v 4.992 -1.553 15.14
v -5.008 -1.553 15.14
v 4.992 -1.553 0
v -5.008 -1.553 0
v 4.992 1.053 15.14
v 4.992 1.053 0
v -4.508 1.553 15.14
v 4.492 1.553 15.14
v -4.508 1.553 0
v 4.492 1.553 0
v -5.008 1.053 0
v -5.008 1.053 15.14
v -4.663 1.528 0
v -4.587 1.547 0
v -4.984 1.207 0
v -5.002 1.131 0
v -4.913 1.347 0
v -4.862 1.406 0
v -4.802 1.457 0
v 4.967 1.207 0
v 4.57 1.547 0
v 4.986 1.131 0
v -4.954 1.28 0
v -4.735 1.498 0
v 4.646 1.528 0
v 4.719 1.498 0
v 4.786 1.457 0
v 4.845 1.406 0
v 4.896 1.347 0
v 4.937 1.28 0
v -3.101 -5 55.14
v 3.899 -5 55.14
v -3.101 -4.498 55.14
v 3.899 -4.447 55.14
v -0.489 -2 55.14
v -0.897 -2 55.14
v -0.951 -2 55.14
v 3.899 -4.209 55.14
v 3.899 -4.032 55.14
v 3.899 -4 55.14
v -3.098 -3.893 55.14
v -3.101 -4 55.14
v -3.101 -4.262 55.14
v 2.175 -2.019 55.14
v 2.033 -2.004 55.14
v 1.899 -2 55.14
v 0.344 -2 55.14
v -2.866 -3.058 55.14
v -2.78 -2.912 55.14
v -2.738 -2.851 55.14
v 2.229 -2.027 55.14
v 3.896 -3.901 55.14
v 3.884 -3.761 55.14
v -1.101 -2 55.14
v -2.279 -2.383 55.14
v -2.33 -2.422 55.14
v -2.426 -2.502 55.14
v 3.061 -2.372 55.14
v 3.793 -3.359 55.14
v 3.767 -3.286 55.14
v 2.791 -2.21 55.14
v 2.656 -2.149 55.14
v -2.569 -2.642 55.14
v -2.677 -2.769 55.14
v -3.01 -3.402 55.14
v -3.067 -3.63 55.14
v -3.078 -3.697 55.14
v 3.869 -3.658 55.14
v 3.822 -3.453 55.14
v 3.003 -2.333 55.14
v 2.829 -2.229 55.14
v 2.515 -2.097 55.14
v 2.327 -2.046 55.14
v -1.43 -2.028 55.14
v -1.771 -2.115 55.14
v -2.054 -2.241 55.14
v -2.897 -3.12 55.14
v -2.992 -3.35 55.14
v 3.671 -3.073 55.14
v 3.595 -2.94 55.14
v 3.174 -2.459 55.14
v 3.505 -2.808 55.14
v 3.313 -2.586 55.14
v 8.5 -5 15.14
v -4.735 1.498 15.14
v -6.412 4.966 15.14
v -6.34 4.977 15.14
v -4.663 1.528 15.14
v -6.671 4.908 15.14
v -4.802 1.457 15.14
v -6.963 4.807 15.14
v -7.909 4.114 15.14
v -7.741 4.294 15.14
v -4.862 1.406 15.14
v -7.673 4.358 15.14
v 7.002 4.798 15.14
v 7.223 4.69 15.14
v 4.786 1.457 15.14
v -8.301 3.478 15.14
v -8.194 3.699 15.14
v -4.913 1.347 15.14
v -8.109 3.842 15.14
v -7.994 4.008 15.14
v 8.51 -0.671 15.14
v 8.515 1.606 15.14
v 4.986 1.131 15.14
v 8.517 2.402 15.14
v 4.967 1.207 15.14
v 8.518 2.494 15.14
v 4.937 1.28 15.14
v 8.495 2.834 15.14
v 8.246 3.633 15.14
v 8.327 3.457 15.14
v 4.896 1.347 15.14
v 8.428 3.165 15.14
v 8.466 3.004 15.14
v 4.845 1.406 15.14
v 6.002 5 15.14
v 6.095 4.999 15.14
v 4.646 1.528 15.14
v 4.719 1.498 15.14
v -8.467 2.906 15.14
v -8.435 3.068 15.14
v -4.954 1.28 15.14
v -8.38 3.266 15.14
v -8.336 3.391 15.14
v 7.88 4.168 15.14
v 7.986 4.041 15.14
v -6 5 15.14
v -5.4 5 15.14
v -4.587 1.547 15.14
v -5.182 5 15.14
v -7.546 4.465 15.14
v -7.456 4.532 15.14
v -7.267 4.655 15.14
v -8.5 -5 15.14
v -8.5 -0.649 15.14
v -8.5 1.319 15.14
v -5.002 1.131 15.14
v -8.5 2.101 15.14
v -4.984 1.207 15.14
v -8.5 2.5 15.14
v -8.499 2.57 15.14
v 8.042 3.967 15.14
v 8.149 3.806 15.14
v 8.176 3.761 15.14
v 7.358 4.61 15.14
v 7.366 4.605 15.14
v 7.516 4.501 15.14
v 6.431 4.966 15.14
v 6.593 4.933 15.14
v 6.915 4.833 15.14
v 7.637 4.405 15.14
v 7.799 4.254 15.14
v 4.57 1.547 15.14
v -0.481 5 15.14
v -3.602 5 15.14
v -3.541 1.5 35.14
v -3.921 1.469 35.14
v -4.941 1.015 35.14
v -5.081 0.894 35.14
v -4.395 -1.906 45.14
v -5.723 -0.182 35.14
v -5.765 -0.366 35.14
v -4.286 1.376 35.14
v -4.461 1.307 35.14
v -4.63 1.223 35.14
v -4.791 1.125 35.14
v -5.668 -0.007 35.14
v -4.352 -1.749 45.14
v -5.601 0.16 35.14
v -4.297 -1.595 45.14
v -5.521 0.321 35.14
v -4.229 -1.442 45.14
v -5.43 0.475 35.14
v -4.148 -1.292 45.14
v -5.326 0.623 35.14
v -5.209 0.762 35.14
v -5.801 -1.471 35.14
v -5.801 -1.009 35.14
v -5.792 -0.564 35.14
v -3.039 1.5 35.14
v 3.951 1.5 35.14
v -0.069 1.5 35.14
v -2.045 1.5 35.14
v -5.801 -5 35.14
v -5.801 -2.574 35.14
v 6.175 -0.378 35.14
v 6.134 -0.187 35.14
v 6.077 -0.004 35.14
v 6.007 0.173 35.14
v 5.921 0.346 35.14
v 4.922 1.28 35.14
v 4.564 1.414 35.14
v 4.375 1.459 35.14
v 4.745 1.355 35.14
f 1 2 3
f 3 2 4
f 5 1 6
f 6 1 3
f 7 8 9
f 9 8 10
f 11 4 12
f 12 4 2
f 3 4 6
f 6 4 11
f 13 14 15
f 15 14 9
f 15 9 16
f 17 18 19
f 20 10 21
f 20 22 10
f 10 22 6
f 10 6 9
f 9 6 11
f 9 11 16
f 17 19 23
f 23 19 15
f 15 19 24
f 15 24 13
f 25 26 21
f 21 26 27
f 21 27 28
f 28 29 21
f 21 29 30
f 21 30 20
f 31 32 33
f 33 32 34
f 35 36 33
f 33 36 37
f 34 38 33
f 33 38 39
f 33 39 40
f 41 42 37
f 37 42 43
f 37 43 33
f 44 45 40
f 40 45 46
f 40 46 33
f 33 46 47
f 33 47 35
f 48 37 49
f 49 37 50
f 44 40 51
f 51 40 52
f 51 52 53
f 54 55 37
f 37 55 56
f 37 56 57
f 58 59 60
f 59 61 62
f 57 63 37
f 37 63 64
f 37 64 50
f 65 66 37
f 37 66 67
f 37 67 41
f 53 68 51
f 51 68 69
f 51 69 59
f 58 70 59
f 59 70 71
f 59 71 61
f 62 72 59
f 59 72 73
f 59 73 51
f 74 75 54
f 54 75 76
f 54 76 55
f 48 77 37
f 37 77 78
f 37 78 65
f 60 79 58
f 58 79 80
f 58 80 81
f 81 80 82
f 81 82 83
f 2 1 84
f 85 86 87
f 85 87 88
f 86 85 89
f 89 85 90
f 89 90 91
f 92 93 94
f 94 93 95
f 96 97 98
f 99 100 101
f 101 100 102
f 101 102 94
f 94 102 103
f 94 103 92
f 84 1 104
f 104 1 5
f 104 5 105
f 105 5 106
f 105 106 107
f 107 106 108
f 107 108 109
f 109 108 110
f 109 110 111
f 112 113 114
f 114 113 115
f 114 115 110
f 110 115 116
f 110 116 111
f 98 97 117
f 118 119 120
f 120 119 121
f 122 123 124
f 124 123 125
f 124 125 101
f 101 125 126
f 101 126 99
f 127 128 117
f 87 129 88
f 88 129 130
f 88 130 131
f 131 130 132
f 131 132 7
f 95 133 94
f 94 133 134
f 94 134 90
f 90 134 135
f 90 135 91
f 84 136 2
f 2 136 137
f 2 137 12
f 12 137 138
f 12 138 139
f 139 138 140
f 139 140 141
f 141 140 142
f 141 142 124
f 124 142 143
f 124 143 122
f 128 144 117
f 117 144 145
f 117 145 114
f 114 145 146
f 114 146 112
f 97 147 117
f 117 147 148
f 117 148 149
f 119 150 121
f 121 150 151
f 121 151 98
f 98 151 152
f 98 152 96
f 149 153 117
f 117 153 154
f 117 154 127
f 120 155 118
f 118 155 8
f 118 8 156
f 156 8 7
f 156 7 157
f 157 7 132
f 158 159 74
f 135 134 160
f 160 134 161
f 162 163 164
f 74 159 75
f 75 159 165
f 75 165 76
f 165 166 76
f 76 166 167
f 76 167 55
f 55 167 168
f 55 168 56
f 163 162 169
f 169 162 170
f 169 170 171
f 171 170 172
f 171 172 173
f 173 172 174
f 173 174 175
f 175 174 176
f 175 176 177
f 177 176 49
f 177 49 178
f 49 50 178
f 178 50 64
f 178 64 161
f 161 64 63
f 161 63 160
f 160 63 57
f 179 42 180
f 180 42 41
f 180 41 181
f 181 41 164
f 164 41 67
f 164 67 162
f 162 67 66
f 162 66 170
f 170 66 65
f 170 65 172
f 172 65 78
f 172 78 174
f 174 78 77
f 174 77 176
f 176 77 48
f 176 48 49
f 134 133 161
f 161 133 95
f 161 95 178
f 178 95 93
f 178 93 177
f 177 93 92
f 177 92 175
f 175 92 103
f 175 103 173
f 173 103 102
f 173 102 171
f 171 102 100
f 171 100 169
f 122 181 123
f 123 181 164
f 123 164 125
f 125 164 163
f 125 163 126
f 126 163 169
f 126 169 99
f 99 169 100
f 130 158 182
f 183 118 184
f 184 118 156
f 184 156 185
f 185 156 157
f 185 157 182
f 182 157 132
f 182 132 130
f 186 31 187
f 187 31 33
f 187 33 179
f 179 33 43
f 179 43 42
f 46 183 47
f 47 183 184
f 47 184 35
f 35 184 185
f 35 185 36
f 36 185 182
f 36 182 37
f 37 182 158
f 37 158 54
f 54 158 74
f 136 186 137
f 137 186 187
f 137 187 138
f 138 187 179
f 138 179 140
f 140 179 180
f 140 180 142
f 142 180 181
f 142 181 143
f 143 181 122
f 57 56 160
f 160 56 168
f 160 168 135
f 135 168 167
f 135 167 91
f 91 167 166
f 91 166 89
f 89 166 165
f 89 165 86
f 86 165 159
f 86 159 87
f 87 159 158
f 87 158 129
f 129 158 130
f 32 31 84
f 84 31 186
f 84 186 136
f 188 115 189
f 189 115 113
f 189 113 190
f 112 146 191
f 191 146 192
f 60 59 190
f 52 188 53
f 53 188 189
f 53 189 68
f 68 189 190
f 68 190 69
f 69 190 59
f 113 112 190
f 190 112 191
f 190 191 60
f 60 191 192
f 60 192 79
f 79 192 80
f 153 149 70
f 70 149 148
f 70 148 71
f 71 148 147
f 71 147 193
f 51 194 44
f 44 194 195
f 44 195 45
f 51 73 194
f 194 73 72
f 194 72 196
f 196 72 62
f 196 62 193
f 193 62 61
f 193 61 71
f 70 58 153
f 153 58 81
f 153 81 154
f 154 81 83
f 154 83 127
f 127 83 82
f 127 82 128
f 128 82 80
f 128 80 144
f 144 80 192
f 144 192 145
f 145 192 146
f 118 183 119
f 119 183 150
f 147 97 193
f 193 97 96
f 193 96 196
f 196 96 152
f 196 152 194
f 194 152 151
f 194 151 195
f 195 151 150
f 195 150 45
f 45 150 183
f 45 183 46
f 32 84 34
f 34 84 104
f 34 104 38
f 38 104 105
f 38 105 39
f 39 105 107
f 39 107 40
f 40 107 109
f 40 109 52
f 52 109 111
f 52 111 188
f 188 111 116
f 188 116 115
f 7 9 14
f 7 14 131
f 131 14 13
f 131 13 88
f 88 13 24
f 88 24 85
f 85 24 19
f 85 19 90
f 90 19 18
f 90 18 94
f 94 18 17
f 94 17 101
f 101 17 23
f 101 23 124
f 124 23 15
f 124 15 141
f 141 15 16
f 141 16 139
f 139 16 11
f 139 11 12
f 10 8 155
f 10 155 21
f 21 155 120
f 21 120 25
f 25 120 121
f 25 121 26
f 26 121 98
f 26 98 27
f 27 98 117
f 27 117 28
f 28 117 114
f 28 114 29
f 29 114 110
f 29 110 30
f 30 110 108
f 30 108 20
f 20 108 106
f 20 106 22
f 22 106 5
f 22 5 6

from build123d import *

# Parameters (mm, degrees)
SKETCH1_W           = 10
SKETCH1_H           = 3.105775443
BOSS_EXTRUDE1_DEPTH = 15.14
FILLET1_R           = 0.5


with BuildPart() as part:
    # Sketch1 → Boss-Extrude1 (new body)
    with BuildSketch(Plane.XY):
        with Locations((-0.008293574, -2.2925e-05)):
            Rectangle(SKETCH1_W, SKETCH1_H)
    extrude(amount=BOSS_EXTRUDE1_DEPTH)

    # Loft1: read off the stored shape, not the designer's step
    # Loft1: loft between two sections, ruled curve by curve
    loft1_from = [
        Edge.make_bspline([(6.002368105, 5, 15.14), (4.973125798, 5, 15.14), (3.004819926, 5, 15.14), (0.185859297, 5, 15.14), (-2.58508535, 5, 15.14), (-4.44969412, 5, 15.14), (-5.449891462, 5, 15.14), (-5.57771544, 5, 15.14), (-5.783318565, 5, 15.14), (-5.907849178, 5, 15.14), (-5.972093141, 5, 15.14), (-6.17467612, 5, 15.14), (-6.499597583, 4.964301348, 15.14), (-6.934896014, 4.832707278, 15.14), (-7.32552261, 4.634429877, 15.14), (-7.673911431, 4.373864242, 15.14), (-7.978763997, 4.050324082, 15.14), (-8.234306918, 3.655920908, 15.14), (-8.396723796, 3.254240148, 15.14), (-8.480332717, 2.862623296, 15.14), (-8.5, 2.631885527, 15.14), (-8.5, 2.075292876, 15.14), (-8.5, 1.127457579, 15.14), (-8.5, -0.819864409, 15.14), (-8.5, -3.191164425, 15.14), (-8.5, -4.454054832, 15.14), (-8.5, -5, 15.14)], [0, 0, 0, 0, 0.111510841, 0.223021681, 0.334532522, 0.446043363, 0.446043363, 0.451912354, 0.457781346, 0.463650337, 0.469519329, 0.469519329, 0.506254839, 0.54299035, 0.57972586, 0.61646137, 0.653196881, 0.689932391, 0.726667901, 0.745035656, 0.763403412, 0.763403412, 0.822552559, 0.881701706, 0.940850853, 1, 1, 1, 1], 3),
        Edge.make_bspline([(8.5, -5, 15.14), (8.500991996, -4.575244993, 15.14), (8.503176578, -3.63984652, 15.14), (8.508751194, -1.252896386, 15.14), (8.51432581, 1.134053748, 15.14), (8.516510392, 2.069452221, 15.14), (8.517811111, 2.626396957, 15.14), (8.49908527, 2.846946207, 15.14), (8.443489244, 3.123561182, 15.14), (8.367638554, 3.363722111, 15.14), (8.245865367, 3.65118142, 15.14), (8.059926267, 3.961930691, 15.14), (7.790063704, 4.279208373, 15.14), (7.471784056, 4.547888472, 15.14), (7.160345054, 4.732669981, 15.14), (6.872434615, 4.853372684, 15.14), (6.631993106, 4.928329205, 15.14), (6.355173173, 4.982895557, 15.14), (6.13455577, 5.000800601, 15.14), (6.002368105, 5, 15.14)], [0, 0, 0, 0, 0.111365706, 0.222731413, 0.334097119, 0.445462826, 0.445462826, 0.480121399, 0.514779973, 0.549438546, 0.584097119, 0.653414266, 0.722731413, 0.79204856, 0.861365706, 0.89602428, 0.930682853, 0.965341427, 1, 1, 1, 1], 3),
        Edge.make_line((-8.5, -5, 15.14), (8.5, -5, 15.14)),
    ]
    loft1_to = [
        Edge.make_bspline([(1.898763427, -2, 55.14), (1.68912791, -2, 55.14), (1.247791237, -2, 55.14), (0.527731018, -2, 55.14), (-0.222420428, -2, 55.14), (-0.713736573, -2, 55.14), (-0.963736573, -2, 55.14), (-0.986728567, -2, 55.14), (-1.019071695, -2, 55.14), (-1.054765163, -2, 55.14), (-1.080945918, -2, 55.14), (-1.228240938, -2, 55.14), (-1.496918662, -2.025435314, 55.14), (-1.911785618, -2.15285696, 55.14), (-2.306346344, -2.382510015, 55.14), (-2.62960532, -2.68644458, 55.14), (-2.864851797, -3.028969372, 55.14), (-3.011847525, -3.375243405, 55.14), (-3.075118823, -3.64816943, 55.14), (-3.0978707, -3.853987875, 55.14), (-3.101236573, -3.952199478, 55.14), (-3.101236573, -4.153930631, 55.14), (-3.101236573, -4.297062563, 55.14), (-3.101236573, -4.527630405, 55.14), (-3.101236573, -4.731947482, 55.14), (-3.101236573, -4.888802183, 55.14), (-3.101236573, -5, 55.14)], [0, 0, 0, 0, 0.111510841, 0.223021681, 0.334532522, 0.446043363, 0.446043363, 0.451912354, 0.457781346, 0.463650337, 0.469519329, 0.469519329, 0.506254839, 0.54299035, 0.57972586, 0.61646137, 0.653196881, 0.689932391, 0.726667901, 0.745035656, 0.763403412, 0.763403412, 0.822552559, 0.881701706, 0.940850853, 1, 1, 1, 1], 3),
        Edge.make_bspline([(3.898763427, -5, 55.14), (3.898763427, -4.846256203, 55.14), (3.898763427, -4.714582876, 55.14), (3.898763427, -4.5, 55.14), (3.898763427, -4.285417124, 55.14), (3.898763427, -4.153743797, 55.14), (3.898763427, -3.952152769, 55.14), (3.895391319, -3.852913488, 55.14), (3.877383526, -3.693016744, 55.14), (3.843592793, -3.521678819, 55.14), (3.772300297, -3.279550251, 55.14), (3.62424883, -2.954199991, 55.14), (3.327418957, -2.571379789, 55.14), (2.944616956, -2.274539085, 55.14), (2.619245408, -2.126493121, 55.14), (2.377114625, -2.05518085, 55.14), (2.20577222, -2.021376458, 55.14), (2.045857954, -2.003369443, 55.14), (1.946610658, -2, 55.14), (1.898763427, -2, 55.14)], [0, 0, 0, 0, 0.111365706, 0.222731413, 0.334097119, 0.445462826, 0.445462826, 0.480121399, 0.514779973, 0.549438546, 0.584097119, 0.653414266, 0.722731413, 0.79204856, 0.861365706, 0.89602428, 0.930682853, 0.965341427, 1, 1, 1, 1], 3),
        Edge.make_line((-3.101236573, -5, 55.14), (3.898763427, -5, 55.14)),
    ]
    loft1 = Solid(Shell([*[Face.make_surface_from_curves(loft1_from[k], loft1_to[k]) for k in range(3)], Face(Wire(loft1_from)), Face(Wire(loft1_to))]))
    add(loft1)

    # Fillet1
    fillet1_edges = [part.edges().sort_by_distance(p)[0] for p in [
        (-5.008293574, 1.552864796, 7.57),
        (4.991706426, 1.552864796, 7.57),
    ]]
    fillet(fillet1_edges, radius=FILLET1_R)


solid = part.part
